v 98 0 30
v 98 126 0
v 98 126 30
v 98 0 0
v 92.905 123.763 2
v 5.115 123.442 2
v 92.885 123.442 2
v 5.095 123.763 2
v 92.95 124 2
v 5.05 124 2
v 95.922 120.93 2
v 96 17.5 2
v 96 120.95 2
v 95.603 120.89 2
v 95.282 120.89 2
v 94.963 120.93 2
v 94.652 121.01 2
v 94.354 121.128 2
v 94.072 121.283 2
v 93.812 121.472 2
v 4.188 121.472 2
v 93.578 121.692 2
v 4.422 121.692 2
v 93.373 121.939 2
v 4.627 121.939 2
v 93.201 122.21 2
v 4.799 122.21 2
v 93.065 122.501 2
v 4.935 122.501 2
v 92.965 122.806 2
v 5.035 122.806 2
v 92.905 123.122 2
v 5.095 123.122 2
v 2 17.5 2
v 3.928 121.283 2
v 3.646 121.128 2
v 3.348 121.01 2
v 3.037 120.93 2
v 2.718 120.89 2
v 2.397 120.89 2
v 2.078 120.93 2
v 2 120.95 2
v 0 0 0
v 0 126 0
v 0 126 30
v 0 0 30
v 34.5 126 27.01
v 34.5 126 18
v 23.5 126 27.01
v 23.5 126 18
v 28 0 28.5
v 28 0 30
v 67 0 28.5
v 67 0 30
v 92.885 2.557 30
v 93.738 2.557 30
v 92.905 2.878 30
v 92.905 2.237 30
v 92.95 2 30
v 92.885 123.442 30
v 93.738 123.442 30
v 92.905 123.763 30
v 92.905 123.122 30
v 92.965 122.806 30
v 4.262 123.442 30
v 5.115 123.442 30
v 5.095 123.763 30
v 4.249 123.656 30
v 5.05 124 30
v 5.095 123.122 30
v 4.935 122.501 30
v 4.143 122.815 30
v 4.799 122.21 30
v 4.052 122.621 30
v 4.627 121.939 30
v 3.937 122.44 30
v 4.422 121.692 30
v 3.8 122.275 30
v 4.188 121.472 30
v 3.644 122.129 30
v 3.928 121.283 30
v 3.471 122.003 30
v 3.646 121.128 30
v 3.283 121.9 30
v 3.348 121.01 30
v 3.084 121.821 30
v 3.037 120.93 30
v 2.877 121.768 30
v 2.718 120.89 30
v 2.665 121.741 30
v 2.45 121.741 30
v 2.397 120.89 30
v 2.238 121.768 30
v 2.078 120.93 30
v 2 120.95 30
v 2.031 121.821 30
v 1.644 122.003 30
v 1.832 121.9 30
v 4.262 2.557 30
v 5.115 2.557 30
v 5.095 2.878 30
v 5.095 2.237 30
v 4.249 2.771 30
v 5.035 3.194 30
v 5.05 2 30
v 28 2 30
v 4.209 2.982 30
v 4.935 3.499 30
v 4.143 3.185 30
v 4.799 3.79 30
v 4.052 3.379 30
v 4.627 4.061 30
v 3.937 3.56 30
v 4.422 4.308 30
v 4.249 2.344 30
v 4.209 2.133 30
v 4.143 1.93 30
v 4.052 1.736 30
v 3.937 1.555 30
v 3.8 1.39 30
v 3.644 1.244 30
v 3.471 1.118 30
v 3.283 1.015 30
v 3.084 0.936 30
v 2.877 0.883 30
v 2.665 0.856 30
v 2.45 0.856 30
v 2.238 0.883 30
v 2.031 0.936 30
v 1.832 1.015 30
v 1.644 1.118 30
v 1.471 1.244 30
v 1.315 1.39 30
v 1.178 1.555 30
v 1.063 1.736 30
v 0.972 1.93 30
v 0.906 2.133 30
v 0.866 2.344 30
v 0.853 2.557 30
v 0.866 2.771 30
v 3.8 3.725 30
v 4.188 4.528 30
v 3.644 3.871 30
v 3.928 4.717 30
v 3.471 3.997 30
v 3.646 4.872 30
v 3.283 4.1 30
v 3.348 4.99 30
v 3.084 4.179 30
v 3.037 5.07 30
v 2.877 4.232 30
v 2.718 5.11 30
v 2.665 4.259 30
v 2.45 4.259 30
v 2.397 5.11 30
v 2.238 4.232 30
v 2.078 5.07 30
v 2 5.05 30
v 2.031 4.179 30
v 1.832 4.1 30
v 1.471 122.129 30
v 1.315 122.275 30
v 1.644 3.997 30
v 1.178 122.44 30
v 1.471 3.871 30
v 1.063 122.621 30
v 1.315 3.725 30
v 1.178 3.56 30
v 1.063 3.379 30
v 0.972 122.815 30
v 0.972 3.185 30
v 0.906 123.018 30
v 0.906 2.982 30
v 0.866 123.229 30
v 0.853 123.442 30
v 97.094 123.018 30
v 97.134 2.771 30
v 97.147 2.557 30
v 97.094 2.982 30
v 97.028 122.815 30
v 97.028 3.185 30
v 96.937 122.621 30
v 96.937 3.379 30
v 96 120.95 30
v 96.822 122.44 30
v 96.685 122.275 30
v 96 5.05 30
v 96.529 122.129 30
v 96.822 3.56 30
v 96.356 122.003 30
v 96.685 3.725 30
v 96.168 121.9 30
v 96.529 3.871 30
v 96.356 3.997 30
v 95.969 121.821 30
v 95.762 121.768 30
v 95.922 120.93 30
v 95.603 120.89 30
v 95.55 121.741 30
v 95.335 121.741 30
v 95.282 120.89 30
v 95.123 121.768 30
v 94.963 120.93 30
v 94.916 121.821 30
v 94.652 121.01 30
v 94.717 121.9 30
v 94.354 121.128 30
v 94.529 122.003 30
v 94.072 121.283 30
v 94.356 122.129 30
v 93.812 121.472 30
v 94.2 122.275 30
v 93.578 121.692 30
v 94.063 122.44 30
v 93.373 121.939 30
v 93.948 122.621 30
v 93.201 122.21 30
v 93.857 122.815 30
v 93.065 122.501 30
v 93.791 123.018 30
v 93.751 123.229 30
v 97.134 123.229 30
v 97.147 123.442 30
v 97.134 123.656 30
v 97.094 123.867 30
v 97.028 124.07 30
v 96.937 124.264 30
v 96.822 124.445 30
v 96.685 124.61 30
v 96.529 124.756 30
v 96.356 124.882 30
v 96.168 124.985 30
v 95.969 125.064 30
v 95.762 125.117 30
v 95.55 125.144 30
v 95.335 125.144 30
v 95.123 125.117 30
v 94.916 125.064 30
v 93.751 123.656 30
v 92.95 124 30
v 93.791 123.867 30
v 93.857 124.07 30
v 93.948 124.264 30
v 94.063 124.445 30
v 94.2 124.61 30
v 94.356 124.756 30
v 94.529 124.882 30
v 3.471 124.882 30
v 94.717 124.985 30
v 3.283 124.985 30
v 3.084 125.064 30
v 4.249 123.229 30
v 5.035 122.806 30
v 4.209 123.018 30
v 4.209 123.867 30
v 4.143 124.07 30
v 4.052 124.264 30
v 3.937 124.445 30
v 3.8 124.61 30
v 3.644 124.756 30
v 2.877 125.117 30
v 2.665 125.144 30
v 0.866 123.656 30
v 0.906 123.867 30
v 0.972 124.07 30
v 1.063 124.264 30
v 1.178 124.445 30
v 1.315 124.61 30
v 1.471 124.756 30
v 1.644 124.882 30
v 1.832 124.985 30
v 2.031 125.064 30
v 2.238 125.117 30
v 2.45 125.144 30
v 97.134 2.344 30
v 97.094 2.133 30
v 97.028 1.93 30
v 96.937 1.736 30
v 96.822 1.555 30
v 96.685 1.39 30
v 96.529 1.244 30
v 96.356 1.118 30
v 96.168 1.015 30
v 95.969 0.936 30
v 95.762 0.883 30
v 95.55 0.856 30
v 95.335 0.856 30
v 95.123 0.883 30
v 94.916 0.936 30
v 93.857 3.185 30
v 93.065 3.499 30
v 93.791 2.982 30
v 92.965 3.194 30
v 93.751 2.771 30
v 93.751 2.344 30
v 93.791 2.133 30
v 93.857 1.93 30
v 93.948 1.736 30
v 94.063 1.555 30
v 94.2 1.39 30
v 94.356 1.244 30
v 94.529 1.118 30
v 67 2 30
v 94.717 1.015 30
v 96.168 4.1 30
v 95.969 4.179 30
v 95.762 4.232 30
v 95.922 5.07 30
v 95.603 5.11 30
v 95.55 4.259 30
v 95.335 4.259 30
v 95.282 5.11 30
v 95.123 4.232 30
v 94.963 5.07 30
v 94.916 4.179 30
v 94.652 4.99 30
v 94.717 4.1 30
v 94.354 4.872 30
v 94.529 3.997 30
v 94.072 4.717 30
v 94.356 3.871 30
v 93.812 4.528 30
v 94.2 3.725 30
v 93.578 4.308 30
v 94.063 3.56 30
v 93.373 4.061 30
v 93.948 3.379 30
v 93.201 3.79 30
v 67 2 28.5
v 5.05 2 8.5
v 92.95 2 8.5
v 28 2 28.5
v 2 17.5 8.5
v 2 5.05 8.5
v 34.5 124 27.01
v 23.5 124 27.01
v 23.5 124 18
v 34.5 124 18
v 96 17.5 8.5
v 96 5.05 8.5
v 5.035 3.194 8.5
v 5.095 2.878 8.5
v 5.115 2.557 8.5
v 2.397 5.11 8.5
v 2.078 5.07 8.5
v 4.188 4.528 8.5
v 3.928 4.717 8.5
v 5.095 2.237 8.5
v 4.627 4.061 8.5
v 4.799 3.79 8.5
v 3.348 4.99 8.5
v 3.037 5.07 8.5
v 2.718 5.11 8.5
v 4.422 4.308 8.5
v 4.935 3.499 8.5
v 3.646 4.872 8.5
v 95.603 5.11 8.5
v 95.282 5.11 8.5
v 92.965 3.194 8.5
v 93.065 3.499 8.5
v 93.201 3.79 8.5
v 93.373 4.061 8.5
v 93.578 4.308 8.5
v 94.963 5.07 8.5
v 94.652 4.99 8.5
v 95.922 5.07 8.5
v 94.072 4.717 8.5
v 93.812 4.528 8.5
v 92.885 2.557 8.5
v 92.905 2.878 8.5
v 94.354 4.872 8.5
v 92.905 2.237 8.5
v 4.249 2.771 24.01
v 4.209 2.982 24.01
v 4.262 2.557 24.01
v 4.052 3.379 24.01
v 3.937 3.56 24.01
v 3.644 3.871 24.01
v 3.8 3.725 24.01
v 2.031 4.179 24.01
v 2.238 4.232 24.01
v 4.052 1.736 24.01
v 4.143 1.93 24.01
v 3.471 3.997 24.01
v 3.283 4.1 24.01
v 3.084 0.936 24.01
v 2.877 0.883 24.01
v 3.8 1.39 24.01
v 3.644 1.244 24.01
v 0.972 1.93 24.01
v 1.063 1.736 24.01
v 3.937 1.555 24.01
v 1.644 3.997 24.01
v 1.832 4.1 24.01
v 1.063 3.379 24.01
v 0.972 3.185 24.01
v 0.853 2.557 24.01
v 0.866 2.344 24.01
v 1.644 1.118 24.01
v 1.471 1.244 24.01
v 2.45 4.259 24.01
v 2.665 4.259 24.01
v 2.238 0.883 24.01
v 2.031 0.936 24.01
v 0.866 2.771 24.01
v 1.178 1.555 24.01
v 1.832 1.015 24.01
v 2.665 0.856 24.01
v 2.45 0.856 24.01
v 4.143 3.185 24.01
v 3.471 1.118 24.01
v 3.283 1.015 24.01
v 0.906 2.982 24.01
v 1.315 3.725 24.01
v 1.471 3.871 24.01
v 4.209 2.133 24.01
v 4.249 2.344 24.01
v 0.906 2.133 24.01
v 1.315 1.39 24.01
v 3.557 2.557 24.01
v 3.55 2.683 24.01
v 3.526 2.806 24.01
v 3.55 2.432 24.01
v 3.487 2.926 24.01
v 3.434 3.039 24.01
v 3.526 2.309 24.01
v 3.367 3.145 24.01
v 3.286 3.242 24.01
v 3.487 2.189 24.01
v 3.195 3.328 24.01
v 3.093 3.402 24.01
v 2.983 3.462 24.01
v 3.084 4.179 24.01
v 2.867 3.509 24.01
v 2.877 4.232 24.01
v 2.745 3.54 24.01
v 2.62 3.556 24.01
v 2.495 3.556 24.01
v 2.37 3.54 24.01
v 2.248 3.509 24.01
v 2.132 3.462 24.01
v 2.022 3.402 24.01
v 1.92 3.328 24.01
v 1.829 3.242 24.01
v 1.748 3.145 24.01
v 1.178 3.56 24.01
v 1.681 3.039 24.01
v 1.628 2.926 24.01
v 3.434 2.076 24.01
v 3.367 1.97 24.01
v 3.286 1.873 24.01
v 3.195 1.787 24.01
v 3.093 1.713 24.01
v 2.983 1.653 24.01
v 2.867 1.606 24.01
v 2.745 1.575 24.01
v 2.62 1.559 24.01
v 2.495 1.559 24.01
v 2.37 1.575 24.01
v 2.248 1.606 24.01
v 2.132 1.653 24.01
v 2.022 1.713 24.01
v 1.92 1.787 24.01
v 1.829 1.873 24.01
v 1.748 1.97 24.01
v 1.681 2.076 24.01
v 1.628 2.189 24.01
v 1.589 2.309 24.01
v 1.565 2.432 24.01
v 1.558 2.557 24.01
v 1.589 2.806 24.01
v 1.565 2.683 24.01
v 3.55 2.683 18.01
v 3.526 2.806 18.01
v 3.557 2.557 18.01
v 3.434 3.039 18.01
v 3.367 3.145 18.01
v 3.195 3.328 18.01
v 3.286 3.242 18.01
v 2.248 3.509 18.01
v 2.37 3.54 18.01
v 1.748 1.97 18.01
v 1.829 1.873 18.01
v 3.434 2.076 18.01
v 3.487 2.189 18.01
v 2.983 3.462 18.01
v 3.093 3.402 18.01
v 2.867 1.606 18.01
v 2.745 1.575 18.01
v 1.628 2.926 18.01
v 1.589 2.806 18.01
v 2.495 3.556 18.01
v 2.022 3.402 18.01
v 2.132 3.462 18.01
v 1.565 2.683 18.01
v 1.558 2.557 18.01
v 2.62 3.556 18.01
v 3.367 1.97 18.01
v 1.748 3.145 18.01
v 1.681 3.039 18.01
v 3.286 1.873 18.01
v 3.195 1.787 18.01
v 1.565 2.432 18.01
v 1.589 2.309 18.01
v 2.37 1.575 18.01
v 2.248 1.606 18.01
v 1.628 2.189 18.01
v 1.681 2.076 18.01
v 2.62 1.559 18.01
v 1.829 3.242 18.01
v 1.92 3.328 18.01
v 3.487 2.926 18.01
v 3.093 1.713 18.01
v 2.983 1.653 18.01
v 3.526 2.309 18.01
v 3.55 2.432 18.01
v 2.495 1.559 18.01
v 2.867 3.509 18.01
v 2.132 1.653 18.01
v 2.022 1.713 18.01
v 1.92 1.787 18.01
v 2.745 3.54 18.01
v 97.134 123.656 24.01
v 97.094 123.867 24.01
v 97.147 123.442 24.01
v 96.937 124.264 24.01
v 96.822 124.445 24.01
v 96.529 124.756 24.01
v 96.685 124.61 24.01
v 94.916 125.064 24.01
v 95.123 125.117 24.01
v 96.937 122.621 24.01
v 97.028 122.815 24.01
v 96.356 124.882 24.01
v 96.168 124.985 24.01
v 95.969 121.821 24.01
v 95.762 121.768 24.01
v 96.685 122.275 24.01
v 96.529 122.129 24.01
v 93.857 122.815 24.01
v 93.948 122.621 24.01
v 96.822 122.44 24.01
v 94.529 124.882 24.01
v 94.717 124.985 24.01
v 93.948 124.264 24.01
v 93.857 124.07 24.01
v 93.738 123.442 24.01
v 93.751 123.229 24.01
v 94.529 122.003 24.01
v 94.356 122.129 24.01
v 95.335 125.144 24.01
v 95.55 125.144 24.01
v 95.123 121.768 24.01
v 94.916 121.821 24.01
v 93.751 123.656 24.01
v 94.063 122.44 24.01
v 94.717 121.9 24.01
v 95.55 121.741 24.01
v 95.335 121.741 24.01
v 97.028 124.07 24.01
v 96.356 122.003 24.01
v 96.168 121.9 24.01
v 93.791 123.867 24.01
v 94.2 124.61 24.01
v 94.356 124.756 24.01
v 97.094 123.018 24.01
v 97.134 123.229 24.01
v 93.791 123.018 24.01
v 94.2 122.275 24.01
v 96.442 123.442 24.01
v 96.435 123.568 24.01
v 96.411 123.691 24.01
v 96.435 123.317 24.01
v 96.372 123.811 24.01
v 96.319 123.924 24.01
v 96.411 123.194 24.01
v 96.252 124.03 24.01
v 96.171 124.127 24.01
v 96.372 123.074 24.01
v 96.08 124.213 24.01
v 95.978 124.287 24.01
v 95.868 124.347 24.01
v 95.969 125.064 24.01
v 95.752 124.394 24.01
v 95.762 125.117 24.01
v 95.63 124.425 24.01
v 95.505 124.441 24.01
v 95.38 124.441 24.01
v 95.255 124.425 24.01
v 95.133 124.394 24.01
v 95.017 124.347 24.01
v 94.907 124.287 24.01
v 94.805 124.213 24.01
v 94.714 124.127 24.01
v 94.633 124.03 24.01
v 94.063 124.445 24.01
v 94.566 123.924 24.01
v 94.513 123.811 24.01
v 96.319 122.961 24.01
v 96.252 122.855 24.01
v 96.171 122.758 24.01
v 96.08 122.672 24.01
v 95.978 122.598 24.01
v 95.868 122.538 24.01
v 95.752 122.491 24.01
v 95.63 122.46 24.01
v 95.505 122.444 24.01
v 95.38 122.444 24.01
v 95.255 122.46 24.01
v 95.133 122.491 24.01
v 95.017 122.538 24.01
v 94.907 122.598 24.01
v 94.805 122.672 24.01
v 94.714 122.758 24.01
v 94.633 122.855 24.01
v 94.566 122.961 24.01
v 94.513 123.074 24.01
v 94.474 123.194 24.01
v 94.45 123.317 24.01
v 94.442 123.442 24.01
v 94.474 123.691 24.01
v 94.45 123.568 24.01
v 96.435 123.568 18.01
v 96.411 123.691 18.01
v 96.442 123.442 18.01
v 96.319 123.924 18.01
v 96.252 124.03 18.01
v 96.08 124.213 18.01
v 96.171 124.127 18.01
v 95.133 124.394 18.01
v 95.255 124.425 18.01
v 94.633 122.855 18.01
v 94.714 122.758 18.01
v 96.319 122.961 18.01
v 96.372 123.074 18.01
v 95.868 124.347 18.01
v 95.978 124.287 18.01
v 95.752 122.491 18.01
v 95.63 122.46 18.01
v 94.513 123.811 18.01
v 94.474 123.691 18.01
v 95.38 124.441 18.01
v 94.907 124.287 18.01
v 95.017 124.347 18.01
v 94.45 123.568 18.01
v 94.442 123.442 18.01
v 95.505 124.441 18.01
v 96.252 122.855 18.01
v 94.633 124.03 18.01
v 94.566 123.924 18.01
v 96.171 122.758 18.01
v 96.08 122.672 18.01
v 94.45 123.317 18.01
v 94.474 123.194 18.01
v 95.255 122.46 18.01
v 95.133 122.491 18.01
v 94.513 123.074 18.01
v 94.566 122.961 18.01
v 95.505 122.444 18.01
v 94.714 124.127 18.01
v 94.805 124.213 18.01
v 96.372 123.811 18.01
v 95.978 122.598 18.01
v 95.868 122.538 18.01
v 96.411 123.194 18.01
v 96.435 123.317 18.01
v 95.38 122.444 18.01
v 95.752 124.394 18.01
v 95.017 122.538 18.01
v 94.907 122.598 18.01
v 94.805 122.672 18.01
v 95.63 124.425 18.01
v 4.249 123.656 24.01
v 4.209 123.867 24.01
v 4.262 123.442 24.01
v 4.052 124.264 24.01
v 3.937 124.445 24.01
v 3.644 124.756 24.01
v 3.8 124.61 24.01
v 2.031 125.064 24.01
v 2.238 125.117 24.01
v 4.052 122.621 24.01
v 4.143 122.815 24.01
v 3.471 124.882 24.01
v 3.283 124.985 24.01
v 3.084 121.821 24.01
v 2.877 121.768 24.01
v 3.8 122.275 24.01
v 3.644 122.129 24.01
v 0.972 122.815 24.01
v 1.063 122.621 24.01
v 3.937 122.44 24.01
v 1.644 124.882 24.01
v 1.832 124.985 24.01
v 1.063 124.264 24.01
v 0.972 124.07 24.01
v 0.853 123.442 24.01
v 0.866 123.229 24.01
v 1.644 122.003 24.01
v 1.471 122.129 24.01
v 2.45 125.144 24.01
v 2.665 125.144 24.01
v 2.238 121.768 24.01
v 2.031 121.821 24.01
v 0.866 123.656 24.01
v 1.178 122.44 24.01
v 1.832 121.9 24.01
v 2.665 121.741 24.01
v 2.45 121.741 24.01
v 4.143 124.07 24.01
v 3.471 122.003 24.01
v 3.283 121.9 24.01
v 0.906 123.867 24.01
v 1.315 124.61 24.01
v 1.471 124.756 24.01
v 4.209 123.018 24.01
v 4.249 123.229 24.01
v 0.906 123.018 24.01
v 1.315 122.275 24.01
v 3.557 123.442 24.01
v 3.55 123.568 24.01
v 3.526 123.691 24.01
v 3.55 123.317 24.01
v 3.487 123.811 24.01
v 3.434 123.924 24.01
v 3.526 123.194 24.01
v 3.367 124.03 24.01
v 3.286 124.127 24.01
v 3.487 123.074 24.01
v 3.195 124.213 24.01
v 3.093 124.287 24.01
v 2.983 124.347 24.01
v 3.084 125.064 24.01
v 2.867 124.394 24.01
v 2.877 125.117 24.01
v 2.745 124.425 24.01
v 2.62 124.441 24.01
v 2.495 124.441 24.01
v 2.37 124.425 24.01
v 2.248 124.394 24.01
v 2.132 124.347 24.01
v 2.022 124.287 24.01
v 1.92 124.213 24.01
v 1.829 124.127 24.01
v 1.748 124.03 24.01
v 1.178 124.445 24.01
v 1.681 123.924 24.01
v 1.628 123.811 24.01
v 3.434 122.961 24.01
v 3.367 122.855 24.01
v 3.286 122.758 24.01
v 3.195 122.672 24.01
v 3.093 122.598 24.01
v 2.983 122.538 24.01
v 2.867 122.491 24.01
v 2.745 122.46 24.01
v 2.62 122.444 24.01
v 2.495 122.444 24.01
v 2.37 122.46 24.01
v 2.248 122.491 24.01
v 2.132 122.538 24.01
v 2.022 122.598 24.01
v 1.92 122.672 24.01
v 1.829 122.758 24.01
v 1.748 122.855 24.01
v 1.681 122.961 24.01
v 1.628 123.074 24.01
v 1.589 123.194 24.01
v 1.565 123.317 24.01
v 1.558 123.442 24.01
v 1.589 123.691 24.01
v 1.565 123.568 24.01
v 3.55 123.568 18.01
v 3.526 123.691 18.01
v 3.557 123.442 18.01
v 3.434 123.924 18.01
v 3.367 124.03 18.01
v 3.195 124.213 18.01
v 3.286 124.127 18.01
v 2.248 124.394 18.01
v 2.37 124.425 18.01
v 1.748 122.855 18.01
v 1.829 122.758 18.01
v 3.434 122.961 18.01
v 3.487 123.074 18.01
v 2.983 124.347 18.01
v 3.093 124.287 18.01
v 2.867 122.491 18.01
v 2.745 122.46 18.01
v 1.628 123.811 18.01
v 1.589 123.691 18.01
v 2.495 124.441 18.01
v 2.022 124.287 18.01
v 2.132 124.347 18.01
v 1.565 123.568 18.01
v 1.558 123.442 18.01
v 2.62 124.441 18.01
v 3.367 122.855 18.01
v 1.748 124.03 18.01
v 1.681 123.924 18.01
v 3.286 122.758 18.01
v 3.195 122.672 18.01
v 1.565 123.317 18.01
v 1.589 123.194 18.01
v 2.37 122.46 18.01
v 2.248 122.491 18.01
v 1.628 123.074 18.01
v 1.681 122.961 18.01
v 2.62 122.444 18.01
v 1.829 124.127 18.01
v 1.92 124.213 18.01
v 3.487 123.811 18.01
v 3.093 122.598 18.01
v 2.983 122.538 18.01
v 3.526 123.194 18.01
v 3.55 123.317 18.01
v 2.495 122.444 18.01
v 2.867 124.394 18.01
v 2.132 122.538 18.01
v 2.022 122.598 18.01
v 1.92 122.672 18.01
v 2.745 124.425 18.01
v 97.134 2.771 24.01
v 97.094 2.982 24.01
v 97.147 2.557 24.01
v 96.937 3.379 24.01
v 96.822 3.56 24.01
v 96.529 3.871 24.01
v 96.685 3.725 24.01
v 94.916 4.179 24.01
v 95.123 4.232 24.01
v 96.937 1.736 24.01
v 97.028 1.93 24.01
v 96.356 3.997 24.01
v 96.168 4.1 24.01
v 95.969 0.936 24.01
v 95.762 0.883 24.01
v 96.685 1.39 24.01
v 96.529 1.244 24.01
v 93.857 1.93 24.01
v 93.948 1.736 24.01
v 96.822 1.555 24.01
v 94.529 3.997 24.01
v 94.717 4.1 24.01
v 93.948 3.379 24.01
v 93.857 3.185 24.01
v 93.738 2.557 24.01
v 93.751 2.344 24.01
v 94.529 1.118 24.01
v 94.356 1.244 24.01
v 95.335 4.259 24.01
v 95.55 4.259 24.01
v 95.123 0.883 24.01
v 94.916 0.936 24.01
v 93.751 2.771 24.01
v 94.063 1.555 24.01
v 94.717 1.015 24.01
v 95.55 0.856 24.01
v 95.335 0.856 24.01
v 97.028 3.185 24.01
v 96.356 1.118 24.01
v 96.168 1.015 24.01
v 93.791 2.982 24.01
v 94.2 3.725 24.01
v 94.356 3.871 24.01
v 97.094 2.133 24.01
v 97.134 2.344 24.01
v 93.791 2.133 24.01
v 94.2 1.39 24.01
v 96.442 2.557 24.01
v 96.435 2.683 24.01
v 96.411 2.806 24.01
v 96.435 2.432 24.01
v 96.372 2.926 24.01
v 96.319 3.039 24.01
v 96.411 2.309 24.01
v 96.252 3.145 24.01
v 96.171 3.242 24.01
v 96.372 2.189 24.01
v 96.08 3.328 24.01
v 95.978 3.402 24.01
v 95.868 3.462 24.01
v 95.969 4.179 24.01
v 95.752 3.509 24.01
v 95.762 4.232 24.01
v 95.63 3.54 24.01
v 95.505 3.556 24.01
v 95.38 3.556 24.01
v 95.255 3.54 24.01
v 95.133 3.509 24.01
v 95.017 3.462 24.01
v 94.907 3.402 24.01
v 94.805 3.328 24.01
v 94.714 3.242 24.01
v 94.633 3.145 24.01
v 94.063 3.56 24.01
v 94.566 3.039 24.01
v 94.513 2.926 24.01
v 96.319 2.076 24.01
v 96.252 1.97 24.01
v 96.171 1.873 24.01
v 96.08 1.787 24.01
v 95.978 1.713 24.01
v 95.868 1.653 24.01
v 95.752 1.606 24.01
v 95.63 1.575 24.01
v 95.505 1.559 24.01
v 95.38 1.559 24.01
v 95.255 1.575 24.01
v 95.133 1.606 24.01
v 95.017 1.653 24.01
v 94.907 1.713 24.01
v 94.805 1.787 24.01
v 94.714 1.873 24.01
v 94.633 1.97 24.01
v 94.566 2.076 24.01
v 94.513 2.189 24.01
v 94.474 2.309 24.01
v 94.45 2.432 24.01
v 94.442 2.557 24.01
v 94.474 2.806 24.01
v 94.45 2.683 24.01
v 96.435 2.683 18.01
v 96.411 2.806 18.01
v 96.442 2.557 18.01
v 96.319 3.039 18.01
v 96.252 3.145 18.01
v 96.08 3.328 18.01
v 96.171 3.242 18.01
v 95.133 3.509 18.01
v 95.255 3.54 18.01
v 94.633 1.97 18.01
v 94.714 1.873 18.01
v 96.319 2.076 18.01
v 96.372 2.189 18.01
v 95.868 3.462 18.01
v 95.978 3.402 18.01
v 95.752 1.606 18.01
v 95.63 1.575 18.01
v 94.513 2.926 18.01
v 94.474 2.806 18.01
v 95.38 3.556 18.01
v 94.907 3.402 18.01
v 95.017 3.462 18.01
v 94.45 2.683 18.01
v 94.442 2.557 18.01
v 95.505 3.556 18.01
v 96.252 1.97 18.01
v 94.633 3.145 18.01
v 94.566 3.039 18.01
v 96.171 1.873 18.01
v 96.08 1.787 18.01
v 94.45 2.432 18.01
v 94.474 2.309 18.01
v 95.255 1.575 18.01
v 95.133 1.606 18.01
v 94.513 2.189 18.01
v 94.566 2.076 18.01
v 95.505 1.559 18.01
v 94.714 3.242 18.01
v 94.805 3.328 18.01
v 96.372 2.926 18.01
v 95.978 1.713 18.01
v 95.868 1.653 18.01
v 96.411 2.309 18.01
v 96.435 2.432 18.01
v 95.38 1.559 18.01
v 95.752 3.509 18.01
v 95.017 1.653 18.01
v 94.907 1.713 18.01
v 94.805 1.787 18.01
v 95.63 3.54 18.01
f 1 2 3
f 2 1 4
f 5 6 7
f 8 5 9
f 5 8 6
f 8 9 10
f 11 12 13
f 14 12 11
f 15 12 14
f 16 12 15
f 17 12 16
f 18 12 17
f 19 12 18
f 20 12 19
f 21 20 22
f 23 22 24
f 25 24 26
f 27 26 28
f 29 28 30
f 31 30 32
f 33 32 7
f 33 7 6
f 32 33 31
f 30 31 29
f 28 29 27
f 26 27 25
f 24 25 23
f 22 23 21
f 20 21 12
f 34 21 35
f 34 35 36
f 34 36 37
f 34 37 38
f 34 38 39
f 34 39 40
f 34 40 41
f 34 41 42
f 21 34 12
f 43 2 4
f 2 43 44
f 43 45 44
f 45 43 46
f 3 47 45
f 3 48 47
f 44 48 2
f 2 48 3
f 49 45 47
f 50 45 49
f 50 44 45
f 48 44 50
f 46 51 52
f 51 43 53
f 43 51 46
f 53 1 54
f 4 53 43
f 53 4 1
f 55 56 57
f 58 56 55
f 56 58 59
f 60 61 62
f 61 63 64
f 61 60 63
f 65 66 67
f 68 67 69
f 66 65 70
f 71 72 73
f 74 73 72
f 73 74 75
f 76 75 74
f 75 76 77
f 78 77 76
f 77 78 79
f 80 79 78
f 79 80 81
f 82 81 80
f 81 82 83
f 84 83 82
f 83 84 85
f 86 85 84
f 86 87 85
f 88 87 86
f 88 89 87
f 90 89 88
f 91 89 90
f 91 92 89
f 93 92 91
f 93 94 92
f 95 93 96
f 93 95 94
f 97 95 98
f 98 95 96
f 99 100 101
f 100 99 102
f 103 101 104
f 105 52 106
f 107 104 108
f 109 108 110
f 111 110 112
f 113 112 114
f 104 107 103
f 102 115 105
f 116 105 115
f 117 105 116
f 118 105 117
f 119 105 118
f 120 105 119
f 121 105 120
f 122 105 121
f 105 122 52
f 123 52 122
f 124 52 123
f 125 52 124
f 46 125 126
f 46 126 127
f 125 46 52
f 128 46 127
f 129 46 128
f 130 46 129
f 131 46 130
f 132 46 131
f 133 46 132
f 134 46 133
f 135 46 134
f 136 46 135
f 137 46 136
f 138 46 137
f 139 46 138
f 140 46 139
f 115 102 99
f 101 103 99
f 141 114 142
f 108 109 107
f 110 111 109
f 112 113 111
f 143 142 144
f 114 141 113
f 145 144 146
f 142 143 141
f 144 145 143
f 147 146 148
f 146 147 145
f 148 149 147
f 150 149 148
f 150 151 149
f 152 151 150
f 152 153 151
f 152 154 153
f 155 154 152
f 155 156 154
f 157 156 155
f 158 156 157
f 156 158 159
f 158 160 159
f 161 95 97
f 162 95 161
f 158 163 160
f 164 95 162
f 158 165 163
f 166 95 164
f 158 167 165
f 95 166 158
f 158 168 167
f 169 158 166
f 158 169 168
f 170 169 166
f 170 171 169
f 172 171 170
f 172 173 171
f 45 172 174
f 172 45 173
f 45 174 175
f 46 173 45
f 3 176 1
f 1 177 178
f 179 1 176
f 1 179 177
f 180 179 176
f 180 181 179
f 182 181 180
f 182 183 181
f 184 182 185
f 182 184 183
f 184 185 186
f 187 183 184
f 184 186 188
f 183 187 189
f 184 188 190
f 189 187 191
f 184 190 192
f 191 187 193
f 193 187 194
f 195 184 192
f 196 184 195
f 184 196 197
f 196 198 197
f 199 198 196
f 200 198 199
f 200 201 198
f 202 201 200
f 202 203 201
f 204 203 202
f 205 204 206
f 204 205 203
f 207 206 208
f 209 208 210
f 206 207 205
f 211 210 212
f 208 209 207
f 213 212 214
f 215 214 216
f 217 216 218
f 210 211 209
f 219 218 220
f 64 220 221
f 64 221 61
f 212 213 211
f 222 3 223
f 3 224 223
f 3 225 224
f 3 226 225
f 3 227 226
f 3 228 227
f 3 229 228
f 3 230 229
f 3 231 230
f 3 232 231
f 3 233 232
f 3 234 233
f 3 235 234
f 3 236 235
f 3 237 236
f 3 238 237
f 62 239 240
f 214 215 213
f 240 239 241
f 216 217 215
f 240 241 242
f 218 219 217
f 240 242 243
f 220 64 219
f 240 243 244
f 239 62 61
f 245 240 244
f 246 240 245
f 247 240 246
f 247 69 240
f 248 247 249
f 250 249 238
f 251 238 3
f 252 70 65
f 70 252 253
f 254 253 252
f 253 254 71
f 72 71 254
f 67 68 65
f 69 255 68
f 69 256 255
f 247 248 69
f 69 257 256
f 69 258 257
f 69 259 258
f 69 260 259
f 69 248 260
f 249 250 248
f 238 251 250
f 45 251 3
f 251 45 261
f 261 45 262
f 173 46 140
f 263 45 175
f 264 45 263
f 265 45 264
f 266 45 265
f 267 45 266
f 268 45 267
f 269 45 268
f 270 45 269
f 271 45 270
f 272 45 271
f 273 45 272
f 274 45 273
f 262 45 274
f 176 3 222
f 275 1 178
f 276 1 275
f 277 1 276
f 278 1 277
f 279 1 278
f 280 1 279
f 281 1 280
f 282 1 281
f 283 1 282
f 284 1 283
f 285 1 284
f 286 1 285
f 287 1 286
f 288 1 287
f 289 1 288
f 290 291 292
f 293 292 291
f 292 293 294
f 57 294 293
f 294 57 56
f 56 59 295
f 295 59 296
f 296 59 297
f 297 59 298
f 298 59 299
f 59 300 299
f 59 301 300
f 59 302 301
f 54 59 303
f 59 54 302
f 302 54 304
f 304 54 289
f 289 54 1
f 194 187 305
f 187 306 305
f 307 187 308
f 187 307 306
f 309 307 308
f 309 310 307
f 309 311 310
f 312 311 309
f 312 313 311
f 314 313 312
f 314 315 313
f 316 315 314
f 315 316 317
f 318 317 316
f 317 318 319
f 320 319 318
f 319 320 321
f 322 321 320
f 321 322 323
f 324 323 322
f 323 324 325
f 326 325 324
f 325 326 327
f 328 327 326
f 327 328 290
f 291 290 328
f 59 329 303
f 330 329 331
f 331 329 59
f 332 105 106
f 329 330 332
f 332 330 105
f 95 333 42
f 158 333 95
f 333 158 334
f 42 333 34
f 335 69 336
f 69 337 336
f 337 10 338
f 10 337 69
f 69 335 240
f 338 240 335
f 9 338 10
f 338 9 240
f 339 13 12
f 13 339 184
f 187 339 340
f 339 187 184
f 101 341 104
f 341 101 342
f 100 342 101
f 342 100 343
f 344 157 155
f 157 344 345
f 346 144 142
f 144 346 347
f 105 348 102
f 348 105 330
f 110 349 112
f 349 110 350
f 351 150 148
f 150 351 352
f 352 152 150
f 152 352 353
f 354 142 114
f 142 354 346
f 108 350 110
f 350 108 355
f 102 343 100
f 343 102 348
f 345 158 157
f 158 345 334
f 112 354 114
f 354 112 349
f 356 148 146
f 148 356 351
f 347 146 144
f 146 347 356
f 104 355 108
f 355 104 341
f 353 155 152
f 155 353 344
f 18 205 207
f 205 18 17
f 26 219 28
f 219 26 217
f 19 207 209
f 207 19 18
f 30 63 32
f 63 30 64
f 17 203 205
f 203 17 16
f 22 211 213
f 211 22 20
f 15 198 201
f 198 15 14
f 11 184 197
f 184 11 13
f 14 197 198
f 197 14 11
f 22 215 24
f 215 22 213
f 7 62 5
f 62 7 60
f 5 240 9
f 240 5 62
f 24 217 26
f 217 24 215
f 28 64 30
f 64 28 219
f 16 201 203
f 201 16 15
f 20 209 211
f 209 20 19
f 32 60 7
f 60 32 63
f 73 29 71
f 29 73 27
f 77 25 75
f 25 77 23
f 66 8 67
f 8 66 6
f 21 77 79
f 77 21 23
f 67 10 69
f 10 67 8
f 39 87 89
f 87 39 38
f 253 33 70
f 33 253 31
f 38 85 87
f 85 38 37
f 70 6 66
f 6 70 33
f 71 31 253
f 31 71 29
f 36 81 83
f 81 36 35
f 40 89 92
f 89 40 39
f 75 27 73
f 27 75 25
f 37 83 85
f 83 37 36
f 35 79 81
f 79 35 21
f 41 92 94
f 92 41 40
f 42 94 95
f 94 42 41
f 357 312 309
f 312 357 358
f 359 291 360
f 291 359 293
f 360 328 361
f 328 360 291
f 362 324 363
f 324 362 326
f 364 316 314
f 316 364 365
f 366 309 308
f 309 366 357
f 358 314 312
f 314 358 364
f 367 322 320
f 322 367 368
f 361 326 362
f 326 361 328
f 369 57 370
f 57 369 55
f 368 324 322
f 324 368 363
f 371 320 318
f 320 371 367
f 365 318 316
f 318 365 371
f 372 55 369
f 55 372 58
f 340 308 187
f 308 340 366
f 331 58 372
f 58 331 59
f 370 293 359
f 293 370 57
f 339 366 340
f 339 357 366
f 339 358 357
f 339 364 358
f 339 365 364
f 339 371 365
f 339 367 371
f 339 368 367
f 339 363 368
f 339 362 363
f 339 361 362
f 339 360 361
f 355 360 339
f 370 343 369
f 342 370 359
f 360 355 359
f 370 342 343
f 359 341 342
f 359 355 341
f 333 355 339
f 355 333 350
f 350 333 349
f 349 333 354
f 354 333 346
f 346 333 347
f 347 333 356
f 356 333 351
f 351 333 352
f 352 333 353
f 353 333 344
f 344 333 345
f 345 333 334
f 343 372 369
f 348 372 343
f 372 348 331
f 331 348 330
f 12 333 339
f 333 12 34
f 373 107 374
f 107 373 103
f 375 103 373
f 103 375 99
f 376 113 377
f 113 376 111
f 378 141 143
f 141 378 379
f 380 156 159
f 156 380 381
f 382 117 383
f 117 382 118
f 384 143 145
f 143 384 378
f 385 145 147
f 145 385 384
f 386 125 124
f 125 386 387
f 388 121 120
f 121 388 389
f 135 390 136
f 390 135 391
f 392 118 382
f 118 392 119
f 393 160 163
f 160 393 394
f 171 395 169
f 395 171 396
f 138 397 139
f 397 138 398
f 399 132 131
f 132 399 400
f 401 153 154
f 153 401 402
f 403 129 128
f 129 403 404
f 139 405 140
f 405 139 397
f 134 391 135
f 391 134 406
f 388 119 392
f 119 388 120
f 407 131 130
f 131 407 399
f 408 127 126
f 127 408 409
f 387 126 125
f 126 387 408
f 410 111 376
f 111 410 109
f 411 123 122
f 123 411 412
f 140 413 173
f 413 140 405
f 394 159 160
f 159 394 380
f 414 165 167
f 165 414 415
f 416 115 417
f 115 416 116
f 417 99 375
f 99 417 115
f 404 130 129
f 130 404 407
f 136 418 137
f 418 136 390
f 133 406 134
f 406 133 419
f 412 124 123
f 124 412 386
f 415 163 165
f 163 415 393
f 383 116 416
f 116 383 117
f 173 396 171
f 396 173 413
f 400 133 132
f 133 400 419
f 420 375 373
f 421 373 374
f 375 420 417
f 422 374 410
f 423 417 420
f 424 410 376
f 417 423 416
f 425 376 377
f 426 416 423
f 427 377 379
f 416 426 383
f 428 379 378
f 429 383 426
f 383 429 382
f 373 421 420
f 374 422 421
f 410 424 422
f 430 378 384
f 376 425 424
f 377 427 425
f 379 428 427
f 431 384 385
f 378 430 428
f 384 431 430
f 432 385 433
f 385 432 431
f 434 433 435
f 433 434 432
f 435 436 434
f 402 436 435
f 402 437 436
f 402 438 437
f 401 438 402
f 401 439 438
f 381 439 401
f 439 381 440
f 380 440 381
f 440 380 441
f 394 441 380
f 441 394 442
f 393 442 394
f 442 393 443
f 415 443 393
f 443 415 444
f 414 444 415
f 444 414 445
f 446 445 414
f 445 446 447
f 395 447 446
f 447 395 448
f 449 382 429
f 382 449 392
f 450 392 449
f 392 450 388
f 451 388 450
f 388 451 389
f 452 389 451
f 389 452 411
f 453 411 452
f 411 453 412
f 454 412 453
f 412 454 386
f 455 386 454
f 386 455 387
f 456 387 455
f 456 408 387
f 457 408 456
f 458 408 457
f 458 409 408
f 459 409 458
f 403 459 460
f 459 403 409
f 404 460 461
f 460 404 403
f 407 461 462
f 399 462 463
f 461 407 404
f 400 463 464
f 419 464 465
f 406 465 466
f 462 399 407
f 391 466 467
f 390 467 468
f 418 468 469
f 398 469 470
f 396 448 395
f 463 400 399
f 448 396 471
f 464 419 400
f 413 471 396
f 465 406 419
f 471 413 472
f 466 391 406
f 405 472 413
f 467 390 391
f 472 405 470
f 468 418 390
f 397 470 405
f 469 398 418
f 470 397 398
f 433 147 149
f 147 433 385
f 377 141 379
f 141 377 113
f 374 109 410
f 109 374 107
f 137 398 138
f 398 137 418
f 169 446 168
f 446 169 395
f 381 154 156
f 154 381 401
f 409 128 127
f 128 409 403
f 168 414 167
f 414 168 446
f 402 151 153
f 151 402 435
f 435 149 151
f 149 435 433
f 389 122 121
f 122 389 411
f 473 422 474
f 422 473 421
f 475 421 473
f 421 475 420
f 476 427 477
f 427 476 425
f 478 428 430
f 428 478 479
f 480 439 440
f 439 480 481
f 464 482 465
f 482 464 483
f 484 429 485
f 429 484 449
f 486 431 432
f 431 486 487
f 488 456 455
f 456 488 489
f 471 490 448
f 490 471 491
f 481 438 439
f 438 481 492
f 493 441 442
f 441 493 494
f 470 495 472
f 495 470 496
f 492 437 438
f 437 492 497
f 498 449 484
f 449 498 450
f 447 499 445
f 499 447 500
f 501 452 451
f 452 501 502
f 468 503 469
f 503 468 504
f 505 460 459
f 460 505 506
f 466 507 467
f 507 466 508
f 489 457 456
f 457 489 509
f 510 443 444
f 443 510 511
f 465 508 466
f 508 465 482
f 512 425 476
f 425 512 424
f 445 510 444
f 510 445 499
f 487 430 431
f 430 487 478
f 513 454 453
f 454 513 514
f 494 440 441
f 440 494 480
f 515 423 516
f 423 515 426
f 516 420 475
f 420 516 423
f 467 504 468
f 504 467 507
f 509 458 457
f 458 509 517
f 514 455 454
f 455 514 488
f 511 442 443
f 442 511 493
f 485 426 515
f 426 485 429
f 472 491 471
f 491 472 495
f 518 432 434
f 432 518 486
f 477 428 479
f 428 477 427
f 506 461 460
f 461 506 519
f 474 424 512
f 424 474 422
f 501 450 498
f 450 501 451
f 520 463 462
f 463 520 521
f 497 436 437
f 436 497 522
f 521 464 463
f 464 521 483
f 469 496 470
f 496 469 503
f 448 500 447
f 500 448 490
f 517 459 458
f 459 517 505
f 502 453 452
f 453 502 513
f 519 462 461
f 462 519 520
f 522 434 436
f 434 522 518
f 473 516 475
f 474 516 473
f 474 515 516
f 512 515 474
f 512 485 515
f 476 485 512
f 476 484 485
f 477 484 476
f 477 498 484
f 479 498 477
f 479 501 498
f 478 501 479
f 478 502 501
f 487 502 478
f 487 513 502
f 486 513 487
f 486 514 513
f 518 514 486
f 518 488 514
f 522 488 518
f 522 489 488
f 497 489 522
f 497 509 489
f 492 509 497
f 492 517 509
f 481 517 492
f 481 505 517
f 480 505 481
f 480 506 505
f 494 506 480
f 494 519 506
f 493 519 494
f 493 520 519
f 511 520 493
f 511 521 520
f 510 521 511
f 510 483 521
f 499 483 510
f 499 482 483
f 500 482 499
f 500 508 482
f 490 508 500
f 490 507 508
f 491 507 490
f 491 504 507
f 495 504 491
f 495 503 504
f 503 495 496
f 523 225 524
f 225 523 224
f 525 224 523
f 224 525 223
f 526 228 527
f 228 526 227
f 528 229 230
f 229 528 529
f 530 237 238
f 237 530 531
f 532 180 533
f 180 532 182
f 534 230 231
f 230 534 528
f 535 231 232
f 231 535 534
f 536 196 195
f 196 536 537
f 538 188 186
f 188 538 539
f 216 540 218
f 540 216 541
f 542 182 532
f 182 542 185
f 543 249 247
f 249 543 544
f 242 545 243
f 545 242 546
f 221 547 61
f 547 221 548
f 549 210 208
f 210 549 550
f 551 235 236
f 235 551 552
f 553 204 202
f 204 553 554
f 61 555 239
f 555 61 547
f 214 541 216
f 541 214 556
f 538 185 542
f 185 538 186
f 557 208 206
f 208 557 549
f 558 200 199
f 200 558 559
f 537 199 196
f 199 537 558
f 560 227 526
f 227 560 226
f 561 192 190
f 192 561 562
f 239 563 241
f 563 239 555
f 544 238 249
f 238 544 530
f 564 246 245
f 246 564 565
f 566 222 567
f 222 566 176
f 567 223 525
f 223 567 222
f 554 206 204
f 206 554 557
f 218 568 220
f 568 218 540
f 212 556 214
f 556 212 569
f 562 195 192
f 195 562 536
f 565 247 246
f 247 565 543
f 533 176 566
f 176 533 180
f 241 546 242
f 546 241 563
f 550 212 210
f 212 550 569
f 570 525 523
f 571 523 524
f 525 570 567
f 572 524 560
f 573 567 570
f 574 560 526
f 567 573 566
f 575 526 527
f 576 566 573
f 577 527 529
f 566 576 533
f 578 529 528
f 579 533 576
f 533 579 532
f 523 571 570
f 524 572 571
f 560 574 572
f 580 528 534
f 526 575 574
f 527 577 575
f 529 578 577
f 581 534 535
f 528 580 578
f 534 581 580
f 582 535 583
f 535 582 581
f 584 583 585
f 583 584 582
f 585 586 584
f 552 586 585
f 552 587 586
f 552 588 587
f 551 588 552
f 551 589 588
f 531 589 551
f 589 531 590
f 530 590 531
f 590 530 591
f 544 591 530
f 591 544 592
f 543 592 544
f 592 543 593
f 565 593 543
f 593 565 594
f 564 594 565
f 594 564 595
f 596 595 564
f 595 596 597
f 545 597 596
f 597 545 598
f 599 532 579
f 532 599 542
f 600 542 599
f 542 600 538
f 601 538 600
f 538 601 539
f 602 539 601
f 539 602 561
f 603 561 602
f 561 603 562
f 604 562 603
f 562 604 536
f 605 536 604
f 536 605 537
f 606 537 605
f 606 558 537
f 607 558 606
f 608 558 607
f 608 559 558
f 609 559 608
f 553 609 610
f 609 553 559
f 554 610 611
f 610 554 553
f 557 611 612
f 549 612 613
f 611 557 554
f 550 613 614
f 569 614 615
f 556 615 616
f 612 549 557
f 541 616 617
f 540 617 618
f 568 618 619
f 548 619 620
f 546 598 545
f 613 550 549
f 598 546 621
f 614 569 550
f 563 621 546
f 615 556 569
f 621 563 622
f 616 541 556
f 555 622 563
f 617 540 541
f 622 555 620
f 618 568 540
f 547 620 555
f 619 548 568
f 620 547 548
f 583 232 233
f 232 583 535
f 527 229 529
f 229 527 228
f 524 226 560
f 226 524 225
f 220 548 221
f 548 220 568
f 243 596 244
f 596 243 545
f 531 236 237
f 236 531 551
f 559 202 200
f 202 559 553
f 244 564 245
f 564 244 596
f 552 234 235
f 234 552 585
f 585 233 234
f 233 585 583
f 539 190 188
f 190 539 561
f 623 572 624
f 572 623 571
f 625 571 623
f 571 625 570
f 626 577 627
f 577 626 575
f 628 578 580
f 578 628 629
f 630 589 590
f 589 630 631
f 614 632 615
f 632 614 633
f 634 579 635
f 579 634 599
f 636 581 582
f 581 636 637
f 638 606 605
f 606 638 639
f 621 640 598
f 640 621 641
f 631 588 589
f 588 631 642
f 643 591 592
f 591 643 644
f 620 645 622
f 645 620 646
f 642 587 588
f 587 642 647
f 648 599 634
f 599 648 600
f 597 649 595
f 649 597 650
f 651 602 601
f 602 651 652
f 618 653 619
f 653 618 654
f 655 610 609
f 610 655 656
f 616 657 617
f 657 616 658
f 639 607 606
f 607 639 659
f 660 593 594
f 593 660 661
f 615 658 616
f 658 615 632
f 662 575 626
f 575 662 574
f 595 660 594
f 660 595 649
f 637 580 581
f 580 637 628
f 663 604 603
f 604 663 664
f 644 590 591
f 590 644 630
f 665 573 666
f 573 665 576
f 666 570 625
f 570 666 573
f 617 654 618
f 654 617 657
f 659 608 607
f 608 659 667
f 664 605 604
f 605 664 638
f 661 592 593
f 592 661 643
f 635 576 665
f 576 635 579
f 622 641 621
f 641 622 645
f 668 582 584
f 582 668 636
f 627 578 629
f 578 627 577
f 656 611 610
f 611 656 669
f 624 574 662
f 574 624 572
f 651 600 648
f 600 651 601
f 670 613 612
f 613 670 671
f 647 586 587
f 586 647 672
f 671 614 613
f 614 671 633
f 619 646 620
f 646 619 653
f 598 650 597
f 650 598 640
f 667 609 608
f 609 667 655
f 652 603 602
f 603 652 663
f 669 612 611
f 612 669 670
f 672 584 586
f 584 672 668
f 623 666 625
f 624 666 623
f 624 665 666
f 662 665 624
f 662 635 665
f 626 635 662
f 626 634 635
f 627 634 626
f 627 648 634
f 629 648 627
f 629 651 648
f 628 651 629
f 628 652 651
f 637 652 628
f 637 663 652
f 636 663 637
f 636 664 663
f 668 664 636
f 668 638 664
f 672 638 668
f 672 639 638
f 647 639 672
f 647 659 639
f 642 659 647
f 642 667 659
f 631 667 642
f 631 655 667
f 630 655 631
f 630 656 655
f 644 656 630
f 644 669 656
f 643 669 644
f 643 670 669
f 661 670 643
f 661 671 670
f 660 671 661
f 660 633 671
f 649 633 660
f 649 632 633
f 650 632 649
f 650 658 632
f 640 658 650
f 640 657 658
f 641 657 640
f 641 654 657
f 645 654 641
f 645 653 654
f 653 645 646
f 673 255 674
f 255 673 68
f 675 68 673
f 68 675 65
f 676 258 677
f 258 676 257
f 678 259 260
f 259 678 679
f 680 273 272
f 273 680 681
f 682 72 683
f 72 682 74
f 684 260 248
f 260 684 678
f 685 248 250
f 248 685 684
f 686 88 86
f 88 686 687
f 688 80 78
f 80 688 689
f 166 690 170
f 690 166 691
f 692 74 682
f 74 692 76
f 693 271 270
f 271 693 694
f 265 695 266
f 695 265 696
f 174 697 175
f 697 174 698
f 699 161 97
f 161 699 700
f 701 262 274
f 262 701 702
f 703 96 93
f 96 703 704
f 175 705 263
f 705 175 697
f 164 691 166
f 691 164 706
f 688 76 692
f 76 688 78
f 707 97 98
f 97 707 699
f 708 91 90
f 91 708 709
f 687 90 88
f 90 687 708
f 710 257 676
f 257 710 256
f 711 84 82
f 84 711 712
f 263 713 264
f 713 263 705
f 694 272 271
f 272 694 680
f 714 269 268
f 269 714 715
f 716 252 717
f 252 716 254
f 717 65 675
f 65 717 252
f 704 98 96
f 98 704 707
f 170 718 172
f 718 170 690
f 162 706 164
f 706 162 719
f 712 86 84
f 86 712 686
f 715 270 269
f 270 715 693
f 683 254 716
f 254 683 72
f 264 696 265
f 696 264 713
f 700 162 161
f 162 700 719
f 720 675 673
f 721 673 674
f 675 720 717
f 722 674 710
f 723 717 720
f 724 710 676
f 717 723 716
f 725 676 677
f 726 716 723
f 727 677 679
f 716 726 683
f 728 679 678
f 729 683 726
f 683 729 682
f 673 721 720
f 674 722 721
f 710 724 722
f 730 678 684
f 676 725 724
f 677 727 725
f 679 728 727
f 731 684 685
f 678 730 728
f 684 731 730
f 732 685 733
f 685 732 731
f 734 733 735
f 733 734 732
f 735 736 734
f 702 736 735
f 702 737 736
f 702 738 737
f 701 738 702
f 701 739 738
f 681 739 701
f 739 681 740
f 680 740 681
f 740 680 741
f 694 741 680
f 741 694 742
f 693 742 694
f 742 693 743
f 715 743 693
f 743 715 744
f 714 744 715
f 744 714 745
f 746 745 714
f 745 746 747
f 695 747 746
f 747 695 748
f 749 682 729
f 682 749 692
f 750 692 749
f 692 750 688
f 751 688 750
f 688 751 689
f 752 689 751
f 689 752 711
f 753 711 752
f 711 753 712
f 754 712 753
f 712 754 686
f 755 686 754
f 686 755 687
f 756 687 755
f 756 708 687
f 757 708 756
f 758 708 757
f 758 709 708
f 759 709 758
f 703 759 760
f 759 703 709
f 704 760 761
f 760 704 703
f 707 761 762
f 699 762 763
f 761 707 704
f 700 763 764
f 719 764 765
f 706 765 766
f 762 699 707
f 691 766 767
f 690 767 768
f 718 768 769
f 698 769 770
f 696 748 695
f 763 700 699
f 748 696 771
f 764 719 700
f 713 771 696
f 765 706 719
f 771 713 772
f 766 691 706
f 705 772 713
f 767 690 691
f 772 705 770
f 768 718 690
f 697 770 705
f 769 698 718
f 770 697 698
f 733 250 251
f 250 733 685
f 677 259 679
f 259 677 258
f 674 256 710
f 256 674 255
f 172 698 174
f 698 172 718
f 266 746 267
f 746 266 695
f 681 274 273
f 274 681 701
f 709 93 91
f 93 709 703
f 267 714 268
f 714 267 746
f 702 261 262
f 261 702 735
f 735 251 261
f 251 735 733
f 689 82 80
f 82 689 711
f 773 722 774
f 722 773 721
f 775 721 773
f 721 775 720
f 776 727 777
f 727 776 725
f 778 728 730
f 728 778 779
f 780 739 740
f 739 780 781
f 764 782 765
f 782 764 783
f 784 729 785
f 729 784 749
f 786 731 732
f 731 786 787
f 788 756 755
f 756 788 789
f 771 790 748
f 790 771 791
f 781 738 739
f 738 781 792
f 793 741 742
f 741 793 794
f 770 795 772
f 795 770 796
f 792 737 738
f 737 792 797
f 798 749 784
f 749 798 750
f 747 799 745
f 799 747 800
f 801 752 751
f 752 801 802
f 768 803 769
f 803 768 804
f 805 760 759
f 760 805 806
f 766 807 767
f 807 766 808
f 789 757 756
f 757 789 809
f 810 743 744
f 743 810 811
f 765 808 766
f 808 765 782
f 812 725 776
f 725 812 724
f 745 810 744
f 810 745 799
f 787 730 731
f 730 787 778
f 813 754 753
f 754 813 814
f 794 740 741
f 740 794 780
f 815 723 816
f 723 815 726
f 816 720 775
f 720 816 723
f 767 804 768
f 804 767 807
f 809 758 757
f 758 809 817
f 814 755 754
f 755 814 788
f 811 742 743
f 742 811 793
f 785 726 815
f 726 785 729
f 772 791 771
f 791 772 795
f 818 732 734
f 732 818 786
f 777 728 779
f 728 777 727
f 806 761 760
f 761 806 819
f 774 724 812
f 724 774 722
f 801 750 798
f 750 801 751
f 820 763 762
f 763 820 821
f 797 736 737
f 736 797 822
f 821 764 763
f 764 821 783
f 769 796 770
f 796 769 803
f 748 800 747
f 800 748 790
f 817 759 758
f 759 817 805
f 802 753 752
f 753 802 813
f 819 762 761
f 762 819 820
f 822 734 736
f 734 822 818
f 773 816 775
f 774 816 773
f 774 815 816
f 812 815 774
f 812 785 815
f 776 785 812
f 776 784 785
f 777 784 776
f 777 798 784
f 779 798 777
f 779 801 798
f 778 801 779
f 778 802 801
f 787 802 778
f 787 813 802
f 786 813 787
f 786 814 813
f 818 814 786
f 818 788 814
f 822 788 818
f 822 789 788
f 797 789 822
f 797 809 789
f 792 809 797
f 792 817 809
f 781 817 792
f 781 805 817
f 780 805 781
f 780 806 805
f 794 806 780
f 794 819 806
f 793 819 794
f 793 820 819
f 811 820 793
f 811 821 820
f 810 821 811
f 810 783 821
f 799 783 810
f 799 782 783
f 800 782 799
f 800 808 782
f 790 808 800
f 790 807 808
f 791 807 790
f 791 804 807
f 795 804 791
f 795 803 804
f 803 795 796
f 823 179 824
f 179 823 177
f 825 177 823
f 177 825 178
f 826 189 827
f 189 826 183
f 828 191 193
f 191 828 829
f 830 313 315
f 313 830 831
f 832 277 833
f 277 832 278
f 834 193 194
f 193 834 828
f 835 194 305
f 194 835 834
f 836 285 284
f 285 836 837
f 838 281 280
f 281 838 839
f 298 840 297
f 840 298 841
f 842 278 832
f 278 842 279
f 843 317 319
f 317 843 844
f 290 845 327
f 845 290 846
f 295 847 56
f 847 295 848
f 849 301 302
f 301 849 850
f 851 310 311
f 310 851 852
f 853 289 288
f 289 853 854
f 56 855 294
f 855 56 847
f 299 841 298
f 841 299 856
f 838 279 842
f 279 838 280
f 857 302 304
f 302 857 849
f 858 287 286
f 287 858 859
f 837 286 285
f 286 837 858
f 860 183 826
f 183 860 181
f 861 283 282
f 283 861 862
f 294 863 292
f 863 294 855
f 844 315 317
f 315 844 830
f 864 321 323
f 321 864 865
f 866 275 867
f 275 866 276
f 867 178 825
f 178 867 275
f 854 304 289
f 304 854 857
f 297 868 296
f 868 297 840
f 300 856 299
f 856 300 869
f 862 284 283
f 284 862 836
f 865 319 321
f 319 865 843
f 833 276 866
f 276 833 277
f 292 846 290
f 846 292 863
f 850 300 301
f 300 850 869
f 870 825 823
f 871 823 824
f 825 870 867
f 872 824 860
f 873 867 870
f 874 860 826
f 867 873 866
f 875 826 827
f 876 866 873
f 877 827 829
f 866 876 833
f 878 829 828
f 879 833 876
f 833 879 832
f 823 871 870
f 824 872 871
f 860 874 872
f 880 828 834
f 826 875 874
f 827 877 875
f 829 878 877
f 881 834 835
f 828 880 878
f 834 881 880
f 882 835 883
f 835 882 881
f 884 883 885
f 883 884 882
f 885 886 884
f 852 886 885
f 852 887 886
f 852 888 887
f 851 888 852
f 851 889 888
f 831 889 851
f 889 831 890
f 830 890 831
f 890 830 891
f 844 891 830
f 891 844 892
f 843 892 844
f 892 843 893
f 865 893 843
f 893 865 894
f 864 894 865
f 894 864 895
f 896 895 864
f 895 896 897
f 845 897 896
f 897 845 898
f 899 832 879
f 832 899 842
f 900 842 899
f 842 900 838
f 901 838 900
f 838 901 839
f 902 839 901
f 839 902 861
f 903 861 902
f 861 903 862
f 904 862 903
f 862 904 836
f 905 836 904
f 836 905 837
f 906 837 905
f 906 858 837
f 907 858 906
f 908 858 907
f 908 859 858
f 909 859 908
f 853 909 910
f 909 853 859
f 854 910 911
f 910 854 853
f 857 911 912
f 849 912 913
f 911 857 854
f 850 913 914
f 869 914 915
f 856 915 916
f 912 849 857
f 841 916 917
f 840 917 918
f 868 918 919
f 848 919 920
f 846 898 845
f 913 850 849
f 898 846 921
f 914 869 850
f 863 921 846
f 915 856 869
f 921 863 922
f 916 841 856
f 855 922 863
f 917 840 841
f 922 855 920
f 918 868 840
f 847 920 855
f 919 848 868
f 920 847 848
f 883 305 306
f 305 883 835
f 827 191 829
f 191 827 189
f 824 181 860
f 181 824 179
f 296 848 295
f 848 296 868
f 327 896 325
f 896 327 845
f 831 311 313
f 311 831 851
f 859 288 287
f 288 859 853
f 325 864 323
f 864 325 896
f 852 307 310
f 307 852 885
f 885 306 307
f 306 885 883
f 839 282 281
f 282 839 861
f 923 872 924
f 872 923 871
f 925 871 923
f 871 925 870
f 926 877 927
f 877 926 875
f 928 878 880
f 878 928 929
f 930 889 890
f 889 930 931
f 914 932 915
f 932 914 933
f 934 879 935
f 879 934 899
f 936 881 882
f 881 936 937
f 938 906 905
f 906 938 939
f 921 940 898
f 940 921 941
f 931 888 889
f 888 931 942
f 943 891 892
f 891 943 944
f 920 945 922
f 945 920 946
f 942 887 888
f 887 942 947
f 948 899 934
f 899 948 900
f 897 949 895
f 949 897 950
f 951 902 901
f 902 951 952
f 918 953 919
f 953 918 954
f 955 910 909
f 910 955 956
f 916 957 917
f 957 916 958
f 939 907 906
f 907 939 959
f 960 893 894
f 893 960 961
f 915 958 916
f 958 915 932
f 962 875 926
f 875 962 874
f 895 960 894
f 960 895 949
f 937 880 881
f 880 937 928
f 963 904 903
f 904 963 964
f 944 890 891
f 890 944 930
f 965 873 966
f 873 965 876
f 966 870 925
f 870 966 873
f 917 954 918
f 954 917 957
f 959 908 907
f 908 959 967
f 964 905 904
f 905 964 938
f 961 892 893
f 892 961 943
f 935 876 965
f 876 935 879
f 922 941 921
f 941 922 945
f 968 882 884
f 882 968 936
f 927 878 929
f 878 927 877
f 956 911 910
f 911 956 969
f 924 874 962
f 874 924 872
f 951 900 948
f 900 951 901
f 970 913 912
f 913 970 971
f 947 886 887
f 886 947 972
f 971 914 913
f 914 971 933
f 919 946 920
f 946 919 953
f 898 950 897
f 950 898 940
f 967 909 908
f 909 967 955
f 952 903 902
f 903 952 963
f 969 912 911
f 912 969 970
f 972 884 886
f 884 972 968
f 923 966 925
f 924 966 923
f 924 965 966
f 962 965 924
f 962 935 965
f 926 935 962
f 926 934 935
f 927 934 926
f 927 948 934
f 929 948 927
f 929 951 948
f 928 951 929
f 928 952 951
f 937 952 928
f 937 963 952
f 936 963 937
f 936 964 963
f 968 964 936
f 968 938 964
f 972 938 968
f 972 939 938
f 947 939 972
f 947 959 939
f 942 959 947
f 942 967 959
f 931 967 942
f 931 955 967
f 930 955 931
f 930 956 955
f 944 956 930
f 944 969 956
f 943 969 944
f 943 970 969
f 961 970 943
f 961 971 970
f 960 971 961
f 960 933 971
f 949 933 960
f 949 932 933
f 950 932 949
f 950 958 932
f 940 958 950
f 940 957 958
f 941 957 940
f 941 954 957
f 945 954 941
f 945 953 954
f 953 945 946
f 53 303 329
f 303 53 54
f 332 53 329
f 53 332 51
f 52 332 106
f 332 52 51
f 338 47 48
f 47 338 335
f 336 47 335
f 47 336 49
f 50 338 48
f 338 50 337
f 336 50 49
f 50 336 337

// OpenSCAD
// OpenSCAD parameters
$fn   = 50.00;
fudge =  0.01; // used to fix render problems

// Basic box dimensions
width           =  98.00;
length          = 126.00;
height          =  30.00;
thickness       =   2.00;

// M2x6x3.5 Embedded Nut
finsertdiameter =   3.41;
finsertdepth    =   6.00;

// M2x12 Hex Socket Cap Bolt
fheaddiameter   =   4.00;
fheaddepth      =   2.00;
fshankdiameter  =   2.00;
fshankdepth     =  12.00;

// Ribbon cable slot dimensions
slotwidth       =  39.00;
slotdepth       =   1.50;
slotposition    =  28.00;

// USB port dimensions
portwidth       = 11.00;
portdepth       =  9.00;
portposition    = 63.50;  // horizontal position
portoffset      =  3.00;  // vertical position from top

// Guard adjustments and derived dimensions
if (fshankdepth < finsertdepth) {
    fshankdepth = finsertdepth;
}
fsize = finsertdiameter * 1.5;


difference() {

    union() {

        // base
        cube([width, length, thickness]);

        // sides
        cube([width, thickness, height]);
        cube([thickness, length, height]);
        translate([0, length - thickness, 0]) {
            cube([width, thickness, height]);
        }
        translate([width - thickness, 0, 0]) {
            cube([thickness, length, height]);
        }

        // posts
        translate([fsize/2, fsize/2, 0]) {
            cylinder(r=fsize/2, h=height);
        }
        translate([width-fsize/2, length-fsize/2, 0]) {
            cylinder(r=fsize/2, h=height);
        }
        translate([fsize/2, length-fsize/2, 0]) {
            cylinder(r=fsize/2, h=height);
        }
        translate([width-fsize/2, fsize/2, 0]) {
            cylinder(r=fsize/2, h=height);
        }
        
        // bottom retainer
        translate([0, thickness, thickness]) {
            cube([width, 15.5, 6.5]);
        }

    }

    // fastener holes
    translate([fsize/2, fsize/2, height-fshankdepth+fudge]) {
        inserthole();
    }
    translate([width-fsize/2, length-fsize/2, height-fshankdepth+fudge]) {
        inserthole();
    }
    translate([fsize/2, length-fsize/2, height-fshankdepth+fudge]) {
        inserthole();
    }
    translate([width-fsize/2, fsize/2, height-fshankdepth+fudge]) {
        inserthole();
    }

    // ribbon cable slot
    translate([slotposition, -fudge, height-slotdepth]) {
        cube([slotwidth,thickness+2*fudge,slotdepth+.1]);
    }

    // USB port
    translate([width-portposition-portwidth, length-thickness-fudge, height-portdepth-portoffset]) {
        cube([portwidth,thickness+2*fudge,portdepth+fudge]);
    }
}

module inserthole() {
    union() {
        translate([0,0,fshankdepth-finsertdepth]) {
            cylinder(h=finsertdepth,r=finsertdiameter/2);
        }
        cylinder(h=fshankdepth,r=fshankdiameter/2);
    }    
}
